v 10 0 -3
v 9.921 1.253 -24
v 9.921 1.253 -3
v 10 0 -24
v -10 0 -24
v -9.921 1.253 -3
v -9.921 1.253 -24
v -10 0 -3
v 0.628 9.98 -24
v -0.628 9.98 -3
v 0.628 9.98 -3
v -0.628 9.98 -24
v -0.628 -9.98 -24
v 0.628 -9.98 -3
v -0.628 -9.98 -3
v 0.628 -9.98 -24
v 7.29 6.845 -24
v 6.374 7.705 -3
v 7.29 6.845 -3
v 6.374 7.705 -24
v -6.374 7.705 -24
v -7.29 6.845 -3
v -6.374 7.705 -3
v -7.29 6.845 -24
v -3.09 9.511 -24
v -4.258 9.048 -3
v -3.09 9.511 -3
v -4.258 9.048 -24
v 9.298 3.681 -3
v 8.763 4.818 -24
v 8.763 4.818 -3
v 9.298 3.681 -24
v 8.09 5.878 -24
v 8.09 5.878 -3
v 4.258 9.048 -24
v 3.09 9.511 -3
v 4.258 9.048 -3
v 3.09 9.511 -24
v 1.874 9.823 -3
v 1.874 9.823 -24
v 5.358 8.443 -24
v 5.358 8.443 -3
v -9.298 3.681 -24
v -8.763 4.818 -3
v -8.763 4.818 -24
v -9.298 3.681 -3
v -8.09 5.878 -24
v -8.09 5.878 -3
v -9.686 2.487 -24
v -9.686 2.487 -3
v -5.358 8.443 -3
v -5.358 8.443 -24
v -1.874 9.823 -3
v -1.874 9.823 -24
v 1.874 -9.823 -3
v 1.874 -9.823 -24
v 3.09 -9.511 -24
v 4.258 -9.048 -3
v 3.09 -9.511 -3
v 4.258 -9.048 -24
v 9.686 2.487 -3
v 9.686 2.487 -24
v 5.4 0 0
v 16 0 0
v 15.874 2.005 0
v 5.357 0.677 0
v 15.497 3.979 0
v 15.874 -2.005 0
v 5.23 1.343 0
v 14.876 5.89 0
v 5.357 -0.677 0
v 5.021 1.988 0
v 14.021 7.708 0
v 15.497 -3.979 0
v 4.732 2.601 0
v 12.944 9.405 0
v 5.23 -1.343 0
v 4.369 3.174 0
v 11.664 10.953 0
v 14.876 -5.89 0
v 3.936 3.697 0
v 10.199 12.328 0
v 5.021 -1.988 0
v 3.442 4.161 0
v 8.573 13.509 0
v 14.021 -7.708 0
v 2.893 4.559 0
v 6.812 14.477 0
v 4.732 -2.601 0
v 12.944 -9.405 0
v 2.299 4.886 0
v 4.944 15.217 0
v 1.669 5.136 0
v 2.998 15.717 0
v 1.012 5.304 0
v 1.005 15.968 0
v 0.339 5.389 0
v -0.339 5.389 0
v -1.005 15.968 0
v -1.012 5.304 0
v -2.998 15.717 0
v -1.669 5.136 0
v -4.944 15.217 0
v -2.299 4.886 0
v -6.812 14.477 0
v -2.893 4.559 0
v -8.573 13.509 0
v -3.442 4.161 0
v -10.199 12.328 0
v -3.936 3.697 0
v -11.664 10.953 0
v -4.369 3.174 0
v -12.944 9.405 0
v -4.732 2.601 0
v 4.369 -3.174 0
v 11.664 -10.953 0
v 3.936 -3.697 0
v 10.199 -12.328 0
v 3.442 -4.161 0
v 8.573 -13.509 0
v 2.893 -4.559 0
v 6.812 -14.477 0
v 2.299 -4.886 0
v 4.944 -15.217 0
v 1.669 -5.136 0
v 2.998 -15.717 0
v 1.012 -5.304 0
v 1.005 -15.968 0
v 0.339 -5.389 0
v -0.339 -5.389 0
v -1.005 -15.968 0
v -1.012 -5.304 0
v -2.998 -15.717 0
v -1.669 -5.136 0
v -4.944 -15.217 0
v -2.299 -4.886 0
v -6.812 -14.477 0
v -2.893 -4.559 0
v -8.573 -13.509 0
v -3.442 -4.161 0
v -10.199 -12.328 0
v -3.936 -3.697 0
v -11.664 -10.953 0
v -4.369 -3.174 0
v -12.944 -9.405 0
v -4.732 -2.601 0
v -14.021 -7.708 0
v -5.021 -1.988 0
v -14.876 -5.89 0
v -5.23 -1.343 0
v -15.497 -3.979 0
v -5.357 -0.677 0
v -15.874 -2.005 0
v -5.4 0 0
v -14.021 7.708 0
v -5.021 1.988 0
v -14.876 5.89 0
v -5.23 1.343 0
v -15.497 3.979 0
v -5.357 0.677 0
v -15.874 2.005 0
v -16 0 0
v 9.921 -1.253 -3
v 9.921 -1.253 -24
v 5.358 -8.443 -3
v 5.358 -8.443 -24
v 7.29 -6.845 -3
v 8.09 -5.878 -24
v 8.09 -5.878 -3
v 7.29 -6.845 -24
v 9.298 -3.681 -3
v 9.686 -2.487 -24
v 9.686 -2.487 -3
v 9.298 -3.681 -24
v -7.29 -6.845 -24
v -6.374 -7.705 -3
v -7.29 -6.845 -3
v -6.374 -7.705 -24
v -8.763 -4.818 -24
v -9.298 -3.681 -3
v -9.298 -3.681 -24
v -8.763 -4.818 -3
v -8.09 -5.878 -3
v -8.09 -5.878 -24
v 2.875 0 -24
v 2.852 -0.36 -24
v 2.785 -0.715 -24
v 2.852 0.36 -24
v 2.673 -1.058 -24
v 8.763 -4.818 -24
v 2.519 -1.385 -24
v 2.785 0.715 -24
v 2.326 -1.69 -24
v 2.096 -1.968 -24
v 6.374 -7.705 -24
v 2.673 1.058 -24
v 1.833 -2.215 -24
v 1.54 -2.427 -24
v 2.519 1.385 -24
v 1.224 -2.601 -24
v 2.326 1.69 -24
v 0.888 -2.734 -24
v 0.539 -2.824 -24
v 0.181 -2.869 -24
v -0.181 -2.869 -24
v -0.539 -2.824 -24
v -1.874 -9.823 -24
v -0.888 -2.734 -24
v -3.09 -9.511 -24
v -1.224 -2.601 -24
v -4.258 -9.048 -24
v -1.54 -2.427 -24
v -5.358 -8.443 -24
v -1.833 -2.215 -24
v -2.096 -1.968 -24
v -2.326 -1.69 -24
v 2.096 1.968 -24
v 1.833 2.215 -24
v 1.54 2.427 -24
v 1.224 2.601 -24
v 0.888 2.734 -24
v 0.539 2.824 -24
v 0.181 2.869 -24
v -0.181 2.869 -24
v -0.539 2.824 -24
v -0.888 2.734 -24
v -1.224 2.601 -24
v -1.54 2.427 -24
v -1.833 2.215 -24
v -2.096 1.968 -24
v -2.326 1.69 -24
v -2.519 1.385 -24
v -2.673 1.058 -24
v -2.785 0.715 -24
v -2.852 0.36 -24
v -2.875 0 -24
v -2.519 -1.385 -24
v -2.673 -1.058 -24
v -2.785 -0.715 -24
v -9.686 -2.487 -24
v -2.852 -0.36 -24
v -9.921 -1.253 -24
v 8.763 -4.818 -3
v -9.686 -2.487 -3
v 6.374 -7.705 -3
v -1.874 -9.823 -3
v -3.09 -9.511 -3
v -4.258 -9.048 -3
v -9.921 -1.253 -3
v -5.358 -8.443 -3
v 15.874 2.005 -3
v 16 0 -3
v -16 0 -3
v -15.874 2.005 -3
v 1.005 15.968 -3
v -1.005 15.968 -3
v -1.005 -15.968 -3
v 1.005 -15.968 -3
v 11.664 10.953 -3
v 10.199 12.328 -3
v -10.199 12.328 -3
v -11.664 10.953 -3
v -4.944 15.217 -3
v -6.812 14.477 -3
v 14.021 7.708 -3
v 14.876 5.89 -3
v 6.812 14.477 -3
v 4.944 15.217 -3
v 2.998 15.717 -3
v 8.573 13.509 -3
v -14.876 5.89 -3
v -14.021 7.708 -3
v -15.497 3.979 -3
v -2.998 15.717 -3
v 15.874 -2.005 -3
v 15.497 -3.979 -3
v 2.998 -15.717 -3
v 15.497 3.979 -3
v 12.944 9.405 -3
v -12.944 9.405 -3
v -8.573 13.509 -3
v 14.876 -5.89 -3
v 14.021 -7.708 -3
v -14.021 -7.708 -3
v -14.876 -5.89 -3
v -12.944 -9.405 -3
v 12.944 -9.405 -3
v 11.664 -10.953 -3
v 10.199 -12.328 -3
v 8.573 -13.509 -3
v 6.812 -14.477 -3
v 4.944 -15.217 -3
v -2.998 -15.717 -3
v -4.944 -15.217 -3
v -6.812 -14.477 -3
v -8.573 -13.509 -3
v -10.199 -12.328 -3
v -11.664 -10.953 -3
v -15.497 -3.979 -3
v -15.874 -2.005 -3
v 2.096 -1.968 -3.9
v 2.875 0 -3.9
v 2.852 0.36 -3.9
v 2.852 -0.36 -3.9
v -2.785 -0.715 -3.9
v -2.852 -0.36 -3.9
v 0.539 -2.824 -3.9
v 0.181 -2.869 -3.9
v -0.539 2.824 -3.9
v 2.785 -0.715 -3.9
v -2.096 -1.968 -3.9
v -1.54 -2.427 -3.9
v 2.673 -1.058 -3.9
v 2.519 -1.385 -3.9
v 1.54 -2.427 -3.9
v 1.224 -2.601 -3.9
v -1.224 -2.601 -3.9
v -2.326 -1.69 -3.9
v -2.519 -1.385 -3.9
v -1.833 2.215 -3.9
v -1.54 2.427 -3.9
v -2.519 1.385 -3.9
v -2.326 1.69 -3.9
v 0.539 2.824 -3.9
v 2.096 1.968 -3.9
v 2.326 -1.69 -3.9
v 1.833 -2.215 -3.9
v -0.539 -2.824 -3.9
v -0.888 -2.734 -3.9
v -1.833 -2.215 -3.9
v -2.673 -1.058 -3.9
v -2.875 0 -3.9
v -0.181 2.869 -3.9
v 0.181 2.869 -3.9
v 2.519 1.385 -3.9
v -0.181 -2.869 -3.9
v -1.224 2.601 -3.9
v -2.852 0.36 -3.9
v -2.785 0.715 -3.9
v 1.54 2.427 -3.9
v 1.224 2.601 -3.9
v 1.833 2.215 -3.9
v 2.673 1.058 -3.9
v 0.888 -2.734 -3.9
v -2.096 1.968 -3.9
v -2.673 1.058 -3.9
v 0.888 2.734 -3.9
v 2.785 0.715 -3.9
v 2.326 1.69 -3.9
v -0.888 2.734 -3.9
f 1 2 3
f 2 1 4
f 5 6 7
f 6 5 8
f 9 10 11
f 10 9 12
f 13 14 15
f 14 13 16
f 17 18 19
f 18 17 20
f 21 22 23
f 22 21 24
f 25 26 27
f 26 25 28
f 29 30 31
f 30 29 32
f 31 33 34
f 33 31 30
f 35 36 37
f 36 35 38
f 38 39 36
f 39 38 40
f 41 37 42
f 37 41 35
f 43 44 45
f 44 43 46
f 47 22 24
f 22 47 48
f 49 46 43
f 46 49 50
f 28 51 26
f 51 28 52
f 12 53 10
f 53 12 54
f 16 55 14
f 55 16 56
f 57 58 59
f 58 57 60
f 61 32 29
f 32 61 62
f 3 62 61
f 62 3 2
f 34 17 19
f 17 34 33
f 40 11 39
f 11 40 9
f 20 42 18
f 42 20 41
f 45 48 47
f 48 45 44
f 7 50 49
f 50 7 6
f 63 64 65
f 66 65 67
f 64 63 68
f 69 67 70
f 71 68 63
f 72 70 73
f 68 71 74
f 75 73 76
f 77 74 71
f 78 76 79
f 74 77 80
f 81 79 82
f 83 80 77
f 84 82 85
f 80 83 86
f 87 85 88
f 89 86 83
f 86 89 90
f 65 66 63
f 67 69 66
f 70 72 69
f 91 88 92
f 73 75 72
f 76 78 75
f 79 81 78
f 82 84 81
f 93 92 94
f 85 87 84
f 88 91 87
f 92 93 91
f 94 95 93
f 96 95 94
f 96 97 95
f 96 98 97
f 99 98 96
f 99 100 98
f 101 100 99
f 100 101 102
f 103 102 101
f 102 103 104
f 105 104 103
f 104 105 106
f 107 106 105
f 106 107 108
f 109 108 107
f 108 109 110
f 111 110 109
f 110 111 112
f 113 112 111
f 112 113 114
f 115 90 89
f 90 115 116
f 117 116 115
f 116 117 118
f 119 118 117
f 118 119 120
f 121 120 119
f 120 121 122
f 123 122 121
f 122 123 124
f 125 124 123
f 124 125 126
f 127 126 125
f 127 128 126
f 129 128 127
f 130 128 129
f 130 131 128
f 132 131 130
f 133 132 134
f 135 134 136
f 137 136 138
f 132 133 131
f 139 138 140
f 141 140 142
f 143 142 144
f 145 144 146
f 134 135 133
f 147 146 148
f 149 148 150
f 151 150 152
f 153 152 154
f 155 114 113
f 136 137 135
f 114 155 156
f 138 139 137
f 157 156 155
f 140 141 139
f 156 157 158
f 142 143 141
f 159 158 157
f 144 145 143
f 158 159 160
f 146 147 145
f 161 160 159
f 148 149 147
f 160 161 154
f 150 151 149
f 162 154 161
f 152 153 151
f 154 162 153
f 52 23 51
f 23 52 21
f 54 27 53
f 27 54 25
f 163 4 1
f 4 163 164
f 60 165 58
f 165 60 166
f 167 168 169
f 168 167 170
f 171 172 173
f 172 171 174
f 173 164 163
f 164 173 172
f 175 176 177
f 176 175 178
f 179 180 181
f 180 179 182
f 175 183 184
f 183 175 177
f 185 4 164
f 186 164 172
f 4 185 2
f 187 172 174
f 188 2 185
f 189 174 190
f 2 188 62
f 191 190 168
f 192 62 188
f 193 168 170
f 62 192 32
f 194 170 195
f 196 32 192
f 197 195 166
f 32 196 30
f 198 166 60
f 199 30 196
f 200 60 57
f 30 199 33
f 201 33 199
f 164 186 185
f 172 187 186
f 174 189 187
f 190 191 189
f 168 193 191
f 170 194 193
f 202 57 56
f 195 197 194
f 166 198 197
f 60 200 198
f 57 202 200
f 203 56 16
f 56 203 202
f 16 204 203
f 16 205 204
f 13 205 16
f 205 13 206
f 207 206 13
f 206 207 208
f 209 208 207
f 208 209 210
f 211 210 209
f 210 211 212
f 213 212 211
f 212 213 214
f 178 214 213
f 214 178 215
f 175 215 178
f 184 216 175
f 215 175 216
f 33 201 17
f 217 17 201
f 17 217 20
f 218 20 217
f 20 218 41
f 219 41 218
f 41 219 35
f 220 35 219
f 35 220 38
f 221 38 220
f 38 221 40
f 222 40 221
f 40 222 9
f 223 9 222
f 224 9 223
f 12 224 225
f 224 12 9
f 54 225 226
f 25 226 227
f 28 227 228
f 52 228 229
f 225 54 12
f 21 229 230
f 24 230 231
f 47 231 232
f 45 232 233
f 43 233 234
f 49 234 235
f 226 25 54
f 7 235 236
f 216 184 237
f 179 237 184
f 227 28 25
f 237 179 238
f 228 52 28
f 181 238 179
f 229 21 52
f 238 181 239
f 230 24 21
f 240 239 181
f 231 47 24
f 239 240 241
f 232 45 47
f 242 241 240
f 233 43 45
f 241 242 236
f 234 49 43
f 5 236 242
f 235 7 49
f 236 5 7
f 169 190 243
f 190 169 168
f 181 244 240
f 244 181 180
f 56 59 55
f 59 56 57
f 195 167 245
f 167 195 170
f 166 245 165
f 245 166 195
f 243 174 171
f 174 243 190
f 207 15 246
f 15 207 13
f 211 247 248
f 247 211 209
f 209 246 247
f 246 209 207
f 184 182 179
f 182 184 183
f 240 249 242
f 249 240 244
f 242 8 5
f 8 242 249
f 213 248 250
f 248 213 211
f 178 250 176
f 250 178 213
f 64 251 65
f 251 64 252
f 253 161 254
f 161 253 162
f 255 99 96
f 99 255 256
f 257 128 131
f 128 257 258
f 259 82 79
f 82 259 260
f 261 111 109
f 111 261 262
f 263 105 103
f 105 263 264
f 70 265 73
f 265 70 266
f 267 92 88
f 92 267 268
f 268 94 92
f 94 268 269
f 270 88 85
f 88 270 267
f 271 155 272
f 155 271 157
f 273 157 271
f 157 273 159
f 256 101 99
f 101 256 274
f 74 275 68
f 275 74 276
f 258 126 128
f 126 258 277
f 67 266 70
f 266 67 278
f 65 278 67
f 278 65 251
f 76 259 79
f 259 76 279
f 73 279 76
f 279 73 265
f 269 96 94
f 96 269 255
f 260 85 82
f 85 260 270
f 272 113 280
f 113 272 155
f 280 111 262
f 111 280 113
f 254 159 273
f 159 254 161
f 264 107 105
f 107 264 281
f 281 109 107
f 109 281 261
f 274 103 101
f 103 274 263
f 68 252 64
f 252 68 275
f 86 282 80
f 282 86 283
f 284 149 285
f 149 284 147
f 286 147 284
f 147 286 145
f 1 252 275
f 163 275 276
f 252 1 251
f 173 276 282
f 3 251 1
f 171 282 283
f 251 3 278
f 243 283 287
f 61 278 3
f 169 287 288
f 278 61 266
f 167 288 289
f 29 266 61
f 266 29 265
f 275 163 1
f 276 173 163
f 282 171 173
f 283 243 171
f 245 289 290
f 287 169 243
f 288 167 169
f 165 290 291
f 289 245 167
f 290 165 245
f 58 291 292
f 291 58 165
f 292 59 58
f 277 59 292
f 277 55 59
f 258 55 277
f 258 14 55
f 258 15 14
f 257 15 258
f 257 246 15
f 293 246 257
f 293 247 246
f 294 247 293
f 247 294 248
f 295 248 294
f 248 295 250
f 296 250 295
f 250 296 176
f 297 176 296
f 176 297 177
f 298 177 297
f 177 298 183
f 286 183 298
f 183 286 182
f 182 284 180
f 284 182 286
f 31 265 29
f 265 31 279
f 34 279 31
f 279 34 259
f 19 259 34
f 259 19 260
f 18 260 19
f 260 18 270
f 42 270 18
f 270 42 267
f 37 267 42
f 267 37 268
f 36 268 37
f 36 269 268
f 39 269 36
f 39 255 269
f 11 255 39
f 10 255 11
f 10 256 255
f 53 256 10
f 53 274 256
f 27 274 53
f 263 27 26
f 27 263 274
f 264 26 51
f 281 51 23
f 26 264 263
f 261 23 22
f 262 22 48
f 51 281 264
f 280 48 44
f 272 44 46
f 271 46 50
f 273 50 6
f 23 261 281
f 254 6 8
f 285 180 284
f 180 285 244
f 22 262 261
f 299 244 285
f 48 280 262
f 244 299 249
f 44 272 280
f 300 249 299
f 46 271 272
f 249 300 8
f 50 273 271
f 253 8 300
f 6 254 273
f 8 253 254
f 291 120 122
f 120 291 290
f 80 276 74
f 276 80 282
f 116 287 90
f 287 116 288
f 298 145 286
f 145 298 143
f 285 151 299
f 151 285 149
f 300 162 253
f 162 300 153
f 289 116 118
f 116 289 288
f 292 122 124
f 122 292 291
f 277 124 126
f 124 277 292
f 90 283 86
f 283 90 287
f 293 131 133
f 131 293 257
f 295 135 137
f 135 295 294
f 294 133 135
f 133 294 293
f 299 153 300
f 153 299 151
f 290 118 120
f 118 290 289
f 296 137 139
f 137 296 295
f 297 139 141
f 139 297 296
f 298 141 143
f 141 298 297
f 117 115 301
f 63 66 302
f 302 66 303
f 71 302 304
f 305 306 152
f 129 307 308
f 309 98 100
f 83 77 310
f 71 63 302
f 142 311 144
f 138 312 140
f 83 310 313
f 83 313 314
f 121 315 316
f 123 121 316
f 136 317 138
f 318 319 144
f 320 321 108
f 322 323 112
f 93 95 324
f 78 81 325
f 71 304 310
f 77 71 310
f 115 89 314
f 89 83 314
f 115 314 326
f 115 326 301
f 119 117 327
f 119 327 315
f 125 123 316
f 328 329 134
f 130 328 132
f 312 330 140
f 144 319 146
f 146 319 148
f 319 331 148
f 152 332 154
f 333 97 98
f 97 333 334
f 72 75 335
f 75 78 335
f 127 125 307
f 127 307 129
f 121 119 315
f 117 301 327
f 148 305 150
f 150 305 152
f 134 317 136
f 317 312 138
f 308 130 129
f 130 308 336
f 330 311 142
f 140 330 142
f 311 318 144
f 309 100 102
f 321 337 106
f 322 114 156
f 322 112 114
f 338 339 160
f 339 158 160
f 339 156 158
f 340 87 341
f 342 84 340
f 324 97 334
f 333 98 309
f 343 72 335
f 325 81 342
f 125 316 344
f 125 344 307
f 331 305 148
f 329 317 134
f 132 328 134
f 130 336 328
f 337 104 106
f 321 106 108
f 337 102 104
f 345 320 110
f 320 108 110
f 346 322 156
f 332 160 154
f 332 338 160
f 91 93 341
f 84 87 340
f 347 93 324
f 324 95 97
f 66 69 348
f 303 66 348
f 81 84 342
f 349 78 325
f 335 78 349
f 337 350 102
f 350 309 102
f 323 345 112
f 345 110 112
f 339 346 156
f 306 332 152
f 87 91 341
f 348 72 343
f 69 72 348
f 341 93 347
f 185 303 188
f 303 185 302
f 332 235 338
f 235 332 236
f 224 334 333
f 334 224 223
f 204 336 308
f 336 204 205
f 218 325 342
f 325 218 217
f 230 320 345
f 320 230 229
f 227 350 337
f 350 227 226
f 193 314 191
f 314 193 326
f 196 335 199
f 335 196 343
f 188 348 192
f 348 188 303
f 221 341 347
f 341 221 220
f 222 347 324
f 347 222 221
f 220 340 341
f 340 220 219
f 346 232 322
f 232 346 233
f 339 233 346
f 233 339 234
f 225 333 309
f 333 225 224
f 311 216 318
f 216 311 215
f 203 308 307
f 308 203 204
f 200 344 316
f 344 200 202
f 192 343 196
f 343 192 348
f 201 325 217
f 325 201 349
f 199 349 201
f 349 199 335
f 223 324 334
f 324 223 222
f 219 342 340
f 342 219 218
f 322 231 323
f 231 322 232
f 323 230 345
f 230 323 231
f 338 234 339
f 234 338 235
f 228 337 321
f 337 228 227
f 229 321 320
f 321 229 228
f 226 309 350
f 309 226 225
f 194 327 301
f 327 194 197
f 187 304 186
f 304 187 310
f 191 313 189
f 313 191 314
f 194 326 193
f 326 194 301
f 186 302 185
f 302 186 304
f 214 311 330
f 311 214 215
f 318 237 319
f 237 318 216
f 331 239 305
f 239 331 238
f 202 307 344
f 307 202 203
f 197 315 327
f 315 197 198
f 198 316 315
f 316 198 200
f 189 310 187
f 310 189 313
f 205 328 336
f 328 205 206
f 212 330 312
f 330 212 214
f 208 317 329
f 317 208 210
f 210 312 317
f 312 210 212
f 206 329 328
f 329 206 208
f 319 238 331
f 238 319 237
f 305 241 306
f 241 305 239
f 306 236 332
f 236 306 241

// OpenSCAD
$fn = 50;


difference() {
	union() {
		translate(v = [0, 0, -24.0000000000]) {
			cylinder(h = 24, r = 10.0000000000);
		}
		translate(v = [0, 0, -3.0000000000]) {
			cylinder(h = 3, r = 16.0000000000);
		}
	}
	union() {
		translate(v = [0, 0, 0]) {
			rotate(a = [0, 0, 0]) {
				difference() {
					union() {
						#translate(v = [0, 0, -24.0000000000]) {
							cylinder(h = 24, r = 2.6000000000);
						}
						#translate(v = [0, 0, -3.9000000000]) {
							cylinder(h = 3.9000000000, r1 = 2.8750000000, r2 = 5.4000000000);
						}
						#translate(v = [0, 0, -24.0000000000]) {
							cylinder(h = 24, r = 2.8750000000);
						}
						#translate(v = [0, 0, -24.0000000000]) {
							cylinder(h = 24, r = 2.6000000000);
						}
					}
					union();
				}
			}
		}
	}
}
